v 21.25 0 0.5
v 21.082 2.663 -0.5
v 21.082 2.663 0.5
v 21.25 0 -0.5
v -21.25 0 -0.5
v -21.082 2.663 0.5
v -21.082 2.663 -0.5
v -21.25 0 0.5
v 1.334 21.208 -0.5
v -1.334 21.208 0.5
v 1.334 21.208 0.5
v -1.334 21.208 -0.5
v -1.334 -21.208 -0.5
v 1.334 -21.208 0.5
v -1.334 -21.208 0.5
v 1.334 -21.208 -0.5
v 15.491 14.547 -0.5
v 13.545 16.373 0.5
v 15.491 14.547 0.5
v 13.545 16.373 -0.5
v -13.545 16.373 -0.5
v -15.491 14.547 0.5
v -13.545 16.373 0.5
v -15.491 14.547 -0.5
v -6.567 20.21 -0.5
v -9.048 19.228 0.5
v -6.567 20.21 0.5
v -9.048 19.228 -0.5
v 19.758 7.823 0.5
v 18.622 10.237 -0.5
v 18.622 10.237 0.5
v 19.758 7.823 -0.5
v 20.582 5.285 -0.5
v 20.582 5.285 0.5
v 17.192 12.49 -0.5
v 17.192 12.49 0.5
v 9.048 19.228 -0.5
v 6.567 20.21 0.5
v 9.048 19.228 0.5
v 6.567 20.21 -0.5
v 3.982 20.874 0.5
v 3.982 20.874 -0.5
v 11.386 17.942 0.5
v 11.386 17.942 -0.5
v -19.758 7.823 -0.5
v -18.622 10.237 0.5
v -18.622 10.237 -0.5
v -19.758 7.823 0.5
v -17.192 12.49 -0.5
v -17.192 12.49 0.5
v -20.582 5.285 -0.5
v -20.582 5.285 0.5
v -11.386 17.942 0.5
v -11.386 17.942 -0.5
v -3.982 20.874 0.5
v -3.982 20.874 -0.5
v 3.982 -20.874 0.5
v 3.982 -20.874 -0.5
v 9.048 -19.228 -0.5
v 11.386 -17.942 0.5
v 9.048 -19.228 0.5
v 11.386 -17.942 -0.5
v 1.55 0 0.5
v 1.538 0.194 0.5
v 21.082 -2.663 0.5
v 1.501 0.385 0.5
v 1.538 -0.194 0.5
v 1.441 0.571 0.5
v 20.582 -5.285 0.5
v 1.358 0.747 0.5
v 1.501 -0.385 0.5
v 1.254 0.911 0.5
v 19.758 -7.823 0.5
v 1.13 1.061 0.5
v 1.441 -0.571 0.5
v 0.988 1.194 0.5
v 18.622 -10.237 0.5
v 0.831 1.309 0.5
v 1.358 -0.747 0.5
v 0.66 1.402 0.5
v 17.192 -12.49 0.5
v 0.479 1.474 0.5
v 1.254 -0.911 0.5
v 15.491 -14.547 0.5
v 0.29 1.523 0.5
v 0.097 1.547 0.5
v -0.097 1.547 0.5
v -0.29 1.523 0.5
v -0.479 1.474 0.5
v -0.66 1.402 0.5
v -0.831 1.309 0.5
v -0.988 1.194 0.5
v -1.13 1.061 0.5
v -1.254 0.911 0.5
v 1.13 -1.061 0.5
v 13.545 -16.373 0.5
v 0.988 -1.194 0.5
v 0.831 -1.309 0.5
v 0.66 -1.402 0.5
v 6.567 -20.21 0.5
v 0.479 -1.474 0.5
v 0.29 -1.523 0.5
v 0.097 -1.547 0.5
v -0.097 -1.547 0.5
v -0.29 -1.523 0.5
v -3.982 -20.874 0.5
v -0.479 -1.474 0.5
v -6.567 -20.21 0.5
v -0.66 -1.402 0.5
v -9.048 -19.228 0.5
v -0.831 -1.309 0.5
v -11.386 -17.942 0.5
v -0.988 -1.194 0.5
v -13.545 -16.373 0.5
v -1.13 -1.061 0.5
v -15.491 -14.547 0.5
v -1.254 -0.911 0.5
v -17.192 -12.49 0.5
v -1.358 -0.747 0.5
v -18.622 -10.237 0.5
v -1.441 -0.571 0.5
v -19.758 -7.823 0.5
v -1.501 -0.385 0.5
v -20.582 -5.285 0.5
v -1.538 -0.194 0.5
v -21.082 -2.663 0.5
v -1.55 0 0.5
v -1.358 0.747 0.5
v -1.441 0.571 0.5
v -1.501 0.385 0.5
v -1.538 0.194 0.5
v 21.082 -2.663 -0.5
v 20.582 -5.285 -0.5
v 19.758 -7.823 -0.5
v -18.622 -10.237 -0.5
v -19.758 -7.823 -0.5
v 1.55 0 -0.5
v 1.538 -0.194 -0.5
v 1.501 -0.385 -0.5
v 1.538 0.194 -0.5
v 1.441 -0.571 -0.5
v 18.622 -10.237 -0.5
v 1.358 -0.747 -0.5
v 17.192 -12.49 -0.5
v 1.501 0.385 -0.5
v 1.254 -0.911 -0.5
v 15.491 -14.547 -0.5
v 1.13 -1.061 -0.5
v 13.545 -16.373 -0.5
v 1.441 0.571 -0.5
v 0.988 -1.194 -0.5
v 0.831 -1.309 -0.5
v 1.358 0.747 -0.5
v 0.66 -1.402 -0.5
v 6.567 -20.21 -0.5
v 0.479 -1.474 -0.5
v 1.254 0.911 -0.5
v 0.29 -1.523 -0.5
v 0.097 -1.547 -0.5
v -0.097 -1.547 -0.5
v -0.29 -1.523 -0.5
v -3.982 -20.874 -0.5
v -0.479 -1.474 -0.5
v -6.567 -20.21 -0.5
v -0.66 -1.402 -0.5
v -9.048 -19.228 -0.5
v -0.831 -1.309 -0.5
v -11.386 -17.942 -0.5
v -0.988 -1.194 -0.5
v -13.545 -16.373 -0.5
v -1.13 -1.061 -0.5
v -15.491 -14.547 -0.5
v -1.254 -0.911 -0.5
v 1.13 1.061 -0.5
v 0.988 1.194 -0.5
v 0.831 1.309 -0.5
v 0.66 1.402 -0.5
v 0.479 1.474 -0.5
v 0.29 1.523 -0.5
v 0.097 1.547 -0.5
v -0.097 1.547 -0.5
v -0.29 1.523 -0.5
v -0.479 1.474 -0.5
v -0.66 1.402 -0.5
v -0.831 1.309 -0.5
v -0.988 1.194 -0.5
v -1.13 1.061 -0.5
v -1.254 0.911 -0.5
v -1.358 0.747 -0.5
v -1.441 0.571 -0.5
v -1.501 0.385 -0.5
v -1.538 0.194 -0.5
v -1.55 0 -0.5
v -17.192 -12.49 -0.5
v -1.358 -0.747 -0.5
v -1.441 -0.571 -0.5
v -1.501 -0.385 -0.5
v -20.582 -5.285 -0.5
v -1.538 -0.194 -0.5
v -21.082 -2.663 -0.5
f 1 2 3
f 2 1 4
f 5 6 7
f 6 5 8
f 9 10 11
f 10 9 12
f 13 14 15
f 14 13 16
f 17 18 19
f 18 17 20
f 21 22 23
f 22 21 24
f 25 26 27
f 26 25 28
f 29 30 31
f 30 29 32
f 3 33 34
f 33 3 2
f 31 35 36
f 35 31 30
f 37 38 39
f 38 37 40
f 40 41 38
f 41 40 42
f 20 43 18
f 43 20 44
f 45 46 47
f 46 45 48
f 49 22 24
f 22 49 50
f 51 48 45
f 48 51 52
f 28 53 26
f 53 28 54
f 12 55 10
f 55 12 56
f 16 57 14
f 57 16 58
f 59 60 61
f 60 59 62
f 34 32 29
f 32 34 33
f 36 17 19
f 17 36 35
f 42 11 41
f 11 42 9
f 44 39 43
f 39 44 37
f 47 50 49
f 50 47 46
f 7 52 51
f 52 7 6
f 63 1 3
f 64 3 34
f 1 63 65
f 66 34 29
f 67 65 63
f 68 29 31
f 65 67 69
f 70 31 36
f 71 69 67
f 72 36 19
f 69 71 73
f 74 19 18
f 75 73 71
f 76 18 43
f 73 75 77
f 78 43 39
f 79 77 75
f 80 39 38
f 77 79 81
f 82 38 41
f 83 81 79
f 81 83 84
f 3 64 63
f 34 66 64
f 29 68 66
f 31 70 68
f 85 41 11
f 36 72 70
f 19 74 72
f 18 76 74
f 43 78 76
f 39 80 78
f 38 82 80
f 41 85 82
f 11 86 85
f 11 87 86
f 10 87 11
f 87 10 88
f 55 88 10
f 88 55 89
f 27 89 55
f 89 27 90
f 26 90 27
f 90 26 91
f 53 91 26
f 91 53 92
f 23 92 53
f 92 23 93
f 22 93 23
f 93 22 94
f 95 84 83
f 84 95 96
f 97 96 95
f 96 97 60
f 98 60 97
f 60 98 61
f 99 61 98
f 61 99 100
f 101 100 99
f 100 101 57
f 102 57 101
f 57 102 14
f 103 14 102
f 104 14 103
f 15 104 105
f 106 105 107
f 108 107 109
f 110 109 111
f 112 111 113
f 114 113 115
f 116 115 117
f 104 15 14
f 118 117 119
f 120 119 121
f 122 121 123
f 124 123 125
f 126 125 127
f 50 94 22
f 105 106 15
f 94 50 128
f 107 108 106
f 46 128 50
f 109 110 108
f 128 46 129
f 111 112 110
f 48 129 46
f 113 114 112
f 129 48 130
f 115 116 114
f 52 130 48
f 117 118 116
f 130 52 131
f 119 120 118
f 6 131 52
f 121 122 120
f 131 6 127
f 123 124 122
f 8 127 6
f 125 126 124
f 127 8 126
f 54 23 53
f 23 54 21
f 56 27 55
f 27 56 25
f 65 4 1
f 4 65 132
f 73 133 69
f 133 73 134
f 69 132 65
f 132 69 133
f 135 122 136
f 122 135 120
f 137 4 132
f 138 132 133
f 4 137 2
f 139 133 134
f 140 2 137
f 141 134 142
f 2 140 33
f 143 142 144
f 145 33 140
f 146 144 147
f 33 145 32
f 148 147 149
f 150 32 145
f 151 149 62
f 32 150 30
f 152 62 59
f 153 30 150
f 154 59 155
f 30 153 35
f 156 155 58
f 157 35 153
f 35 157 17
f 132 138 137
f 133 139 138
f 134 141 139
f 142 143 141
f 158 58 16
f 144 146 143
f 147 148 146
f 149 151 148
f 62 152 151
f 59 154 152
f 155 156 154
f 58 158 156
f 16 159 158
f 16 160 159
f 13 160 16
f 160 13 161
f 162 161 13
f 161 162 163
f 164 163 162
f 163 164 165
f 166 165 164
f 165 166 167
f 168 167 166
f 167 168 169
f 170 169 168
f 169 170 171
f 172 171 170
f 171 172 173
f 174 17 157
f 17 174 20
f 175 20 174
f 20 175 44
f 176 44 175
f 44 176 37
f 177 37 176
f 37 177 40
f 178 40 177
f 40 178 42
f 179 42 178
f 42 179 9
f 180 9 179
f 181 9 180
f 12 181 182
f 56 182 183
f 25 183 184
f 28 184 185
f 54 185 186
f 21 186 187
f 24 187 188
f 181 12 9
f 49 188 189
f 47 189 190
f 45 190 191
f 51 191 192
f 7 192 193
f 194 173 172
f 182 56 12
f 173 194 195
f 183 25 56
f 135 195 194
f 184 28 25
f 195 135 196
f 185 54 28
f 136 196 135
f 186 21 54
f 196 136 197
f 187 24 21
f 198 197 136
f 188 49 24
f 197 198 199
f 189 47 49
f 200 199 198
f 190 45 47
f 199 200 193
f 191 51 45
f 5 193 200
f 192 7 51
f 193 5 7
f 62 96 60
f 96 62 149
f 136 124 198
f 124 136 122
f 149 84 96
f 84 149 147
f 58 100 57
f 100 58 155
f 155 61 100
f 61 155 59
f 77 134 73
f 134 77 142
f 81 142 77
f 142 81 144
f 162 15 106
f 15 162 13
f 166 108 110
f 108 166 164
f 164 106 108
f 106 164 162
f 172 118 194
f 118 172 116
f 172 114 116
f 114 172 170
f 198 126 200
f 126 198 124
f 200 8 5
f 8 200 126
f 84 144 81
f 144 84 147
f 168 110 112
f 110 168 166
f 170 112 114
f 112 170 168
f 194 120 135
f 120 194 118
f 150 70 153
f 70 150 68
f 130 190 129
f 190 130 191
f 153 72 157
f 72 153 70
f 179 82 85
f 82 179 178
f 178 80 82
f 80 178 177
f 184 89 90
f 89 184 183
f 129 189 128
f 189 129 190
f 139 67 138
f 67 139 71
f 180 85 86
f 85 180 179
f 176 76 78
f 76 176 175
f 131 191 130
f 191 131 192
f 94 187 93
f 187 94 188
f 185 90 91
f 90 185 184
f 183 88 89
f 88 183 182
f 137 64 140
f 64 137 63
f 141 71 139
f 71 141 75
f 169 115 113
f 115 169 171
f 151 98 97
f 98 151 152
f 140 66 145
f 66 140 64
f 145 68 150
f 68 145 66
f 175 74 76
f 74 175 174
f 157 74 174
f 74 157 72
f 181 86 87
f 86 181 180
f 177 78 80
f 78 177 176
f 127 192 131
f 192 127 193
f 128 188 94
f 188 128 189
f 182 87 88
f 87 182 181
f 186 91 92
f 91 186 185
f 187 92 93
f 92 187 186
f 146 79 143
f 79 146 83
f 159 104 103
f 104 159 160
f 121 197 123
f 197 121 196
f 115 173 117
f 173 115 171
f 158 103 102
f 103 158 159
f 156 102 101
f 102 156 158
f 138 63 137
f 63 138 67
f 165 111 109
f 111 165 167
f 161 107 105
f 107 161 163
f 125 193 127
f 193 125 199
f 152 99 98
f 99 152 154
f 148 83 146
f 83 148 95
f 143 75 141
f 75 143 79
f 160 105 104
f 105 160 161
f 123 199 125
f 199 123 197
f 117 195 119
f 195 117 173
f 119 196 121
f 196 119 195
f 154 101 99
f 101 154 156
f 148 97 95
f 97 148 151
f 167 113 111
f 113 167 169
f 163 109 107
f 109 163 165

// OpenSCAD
$fn = 50;


difference() {
	union() {
		translate(v = [0, 0, -0.5000000000]) {
			cylinder(h = 1, r = 21.2500000000);
		}
	}
	union() {
		translate(v = [0, 0, -100.0000000000]) {
			cylinder(h = 200, r = 1.5500000000);
		}
	}
}
